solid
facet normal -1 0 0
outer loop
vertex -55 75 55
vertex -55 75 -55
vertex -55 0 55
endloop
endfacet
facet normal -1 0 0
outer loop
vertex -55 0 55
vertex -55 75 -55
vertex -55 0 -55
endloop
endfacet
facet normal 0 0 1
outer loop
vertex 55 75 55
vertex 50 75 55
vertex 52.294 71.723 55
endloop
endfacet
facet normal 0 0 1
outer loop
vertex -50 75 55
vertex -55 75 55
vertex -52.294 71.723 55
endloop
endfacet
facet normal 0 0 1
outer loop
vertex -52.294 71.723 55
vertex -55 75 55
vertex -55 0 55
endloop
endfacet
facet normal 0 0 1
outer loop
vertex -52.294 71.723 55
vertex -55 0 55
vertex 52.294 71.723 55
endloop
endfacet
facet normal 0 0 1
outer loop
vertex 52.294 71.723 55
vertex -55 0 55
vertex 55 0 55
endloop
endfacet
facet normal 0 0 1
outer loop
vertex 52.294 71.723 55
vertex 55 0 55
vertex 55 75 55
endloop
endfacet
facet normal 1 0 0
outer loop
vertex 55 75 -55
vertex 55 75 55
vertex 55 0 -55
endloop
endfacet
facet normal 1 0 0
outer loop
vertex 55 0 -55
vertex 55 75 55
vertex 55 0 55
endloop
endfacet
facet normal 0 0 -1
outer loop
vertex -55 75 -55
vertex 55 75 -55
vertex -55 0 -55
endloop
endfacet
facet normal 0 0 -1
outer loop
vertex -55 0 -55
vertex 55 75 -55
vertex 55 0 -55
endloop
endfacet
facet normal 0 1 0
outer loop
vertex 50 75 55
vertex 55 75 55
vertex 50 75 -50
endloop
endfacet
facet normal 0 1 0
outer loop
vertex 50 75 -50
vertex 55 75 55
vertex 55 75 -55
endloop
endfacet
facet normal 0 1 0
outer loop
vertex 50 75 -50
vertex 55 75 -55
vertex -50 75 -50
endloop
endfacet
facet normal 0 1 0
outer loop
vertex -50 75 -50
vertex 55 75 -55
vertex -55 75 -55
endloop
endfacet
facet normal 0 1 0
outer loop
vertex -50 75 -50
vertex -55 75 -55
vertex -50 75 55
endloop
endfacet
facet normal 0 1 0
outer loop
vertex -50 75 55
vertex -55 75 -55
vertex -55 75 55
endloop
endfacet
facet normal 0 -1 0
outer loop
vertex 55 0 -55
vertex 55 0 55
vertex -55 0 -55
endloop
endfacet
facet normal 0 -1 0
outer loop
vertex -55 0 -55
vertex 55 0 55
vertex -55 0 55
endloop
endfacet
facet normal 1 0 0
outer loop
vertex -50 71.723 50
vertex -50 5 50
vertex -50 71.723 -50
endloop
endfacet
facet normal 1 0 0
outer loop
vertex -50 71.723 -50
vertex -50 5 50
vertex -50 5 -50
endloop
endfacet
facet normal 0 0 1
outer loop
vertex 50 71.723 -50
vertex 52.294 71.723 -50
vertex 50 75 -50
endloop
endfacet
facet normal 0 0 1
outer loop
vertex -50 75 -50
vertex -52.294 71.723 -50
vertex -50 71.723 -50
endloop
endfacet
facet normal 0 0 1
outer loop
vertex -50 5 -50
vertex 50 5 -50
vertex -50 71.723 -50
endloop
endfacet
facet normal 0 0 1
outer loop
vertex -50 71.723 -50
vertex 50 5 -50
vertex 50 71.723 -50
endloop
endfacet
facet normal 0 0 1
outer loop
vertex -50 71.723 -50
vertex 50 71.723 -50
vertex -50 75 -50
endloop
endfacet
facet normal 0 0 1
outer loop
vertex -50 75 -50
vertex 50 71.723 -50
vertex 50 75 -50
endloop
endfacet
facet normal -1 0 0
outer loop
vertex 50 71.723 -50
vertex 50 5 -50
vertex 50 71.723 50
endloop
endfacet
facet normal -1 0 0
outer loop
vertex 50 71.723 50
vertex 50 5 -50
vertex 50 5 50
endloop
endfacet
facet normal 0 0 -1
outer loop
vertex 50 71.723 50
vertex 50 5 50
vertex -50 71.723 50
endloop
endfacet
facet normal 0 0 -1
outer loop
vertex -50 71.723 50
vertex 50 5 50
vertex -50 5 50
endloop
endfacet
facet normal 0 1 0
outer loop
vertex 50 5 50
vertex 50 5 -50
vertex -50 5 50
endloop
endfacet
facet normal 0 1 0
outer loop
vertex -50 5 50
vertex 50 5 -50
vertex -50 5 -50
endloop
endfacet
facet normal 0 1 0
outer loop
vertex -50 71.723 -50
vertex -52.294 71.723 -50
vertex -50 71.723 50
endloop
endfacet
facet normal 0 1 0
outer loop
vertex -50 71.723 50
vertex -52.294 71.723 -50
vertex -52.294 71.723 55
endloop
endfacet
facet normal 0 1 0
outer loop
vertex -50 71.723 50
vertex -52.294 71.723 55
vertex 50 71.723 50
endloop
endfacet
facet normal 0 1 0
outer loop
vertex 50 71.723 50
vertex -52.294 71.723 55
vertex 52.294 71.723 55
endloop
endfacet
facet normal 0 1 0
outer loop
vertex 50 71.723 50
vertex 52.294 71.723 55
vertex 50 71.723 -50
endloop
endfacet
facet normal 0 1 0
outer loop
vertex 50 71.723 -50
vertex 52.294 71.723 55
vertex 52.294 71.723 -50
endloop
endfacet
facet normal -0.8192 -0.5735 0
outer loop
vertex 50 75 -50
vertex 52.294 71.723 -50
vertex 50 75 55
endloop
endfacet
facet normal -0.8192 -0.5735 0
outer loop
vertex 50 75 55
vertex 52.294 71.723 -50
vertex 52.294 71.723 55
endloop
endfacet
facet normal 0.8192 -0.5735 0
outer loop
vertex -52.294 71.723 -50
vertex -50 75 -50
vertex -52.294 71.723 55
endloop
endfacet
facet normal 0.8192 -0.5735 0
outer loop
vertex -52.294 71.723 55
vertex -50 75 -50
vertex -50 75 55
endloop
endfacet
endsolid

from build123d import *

# Parameters (mm, degrees)
SKETCH1_W           = 110
SKETCH1_H           = 110
BOSS_EXTRUDE1_DEPTH = 75
SKETCH2_W           = 100
SKETCH2_H           = 100
CUT_EXTRUDE2_DEPTH  = 70
CUT_EXTRUDE3_START  = -105
CUT_EXTRUDE3_DEPTH  = 105


with BuildPart() as part:
    # Sketch1 → Boss-Extrude1 (new body)
    with BuildSketch(Plane(origin=(0, 0, 0), x_dir=(1, 0, 0), z_dir=(0, 1, 0))):
        Rectangle(SKETCH1_W, SKETCH1_H)
    extrude(amount=BOSS_EXTRUDE1_DEPTH)

    # Sketch2 → Cut-Extrude2 (cut)
    with BuildSketch(Plane(origin=(0, 75, 0), x_dir=(1, 0, 0), z_dir=(0, 1, 0))):
        Rectangle(SKETCH2_W, SKETCH2_H)
    extrude(amount=-CUT_EXTRUDE2_DEPTH, mode=Mode.SUBTRACT)

    # Sketch4 → Cut-Extrude3 (cut)
    with BuildSketch(Plane.XY.offset(55).offset(CUT_EXTRUDE3_START)):
        Polygon((50, 75), (52.294305745, 71.723391823), (-52.294305745, 71.723391823), (-50, 75), align=None)
    extrude(amount=CUT_EXTRUDE3_DEPTH, mode=Mode.SUBTRACT)


solid = part.part
